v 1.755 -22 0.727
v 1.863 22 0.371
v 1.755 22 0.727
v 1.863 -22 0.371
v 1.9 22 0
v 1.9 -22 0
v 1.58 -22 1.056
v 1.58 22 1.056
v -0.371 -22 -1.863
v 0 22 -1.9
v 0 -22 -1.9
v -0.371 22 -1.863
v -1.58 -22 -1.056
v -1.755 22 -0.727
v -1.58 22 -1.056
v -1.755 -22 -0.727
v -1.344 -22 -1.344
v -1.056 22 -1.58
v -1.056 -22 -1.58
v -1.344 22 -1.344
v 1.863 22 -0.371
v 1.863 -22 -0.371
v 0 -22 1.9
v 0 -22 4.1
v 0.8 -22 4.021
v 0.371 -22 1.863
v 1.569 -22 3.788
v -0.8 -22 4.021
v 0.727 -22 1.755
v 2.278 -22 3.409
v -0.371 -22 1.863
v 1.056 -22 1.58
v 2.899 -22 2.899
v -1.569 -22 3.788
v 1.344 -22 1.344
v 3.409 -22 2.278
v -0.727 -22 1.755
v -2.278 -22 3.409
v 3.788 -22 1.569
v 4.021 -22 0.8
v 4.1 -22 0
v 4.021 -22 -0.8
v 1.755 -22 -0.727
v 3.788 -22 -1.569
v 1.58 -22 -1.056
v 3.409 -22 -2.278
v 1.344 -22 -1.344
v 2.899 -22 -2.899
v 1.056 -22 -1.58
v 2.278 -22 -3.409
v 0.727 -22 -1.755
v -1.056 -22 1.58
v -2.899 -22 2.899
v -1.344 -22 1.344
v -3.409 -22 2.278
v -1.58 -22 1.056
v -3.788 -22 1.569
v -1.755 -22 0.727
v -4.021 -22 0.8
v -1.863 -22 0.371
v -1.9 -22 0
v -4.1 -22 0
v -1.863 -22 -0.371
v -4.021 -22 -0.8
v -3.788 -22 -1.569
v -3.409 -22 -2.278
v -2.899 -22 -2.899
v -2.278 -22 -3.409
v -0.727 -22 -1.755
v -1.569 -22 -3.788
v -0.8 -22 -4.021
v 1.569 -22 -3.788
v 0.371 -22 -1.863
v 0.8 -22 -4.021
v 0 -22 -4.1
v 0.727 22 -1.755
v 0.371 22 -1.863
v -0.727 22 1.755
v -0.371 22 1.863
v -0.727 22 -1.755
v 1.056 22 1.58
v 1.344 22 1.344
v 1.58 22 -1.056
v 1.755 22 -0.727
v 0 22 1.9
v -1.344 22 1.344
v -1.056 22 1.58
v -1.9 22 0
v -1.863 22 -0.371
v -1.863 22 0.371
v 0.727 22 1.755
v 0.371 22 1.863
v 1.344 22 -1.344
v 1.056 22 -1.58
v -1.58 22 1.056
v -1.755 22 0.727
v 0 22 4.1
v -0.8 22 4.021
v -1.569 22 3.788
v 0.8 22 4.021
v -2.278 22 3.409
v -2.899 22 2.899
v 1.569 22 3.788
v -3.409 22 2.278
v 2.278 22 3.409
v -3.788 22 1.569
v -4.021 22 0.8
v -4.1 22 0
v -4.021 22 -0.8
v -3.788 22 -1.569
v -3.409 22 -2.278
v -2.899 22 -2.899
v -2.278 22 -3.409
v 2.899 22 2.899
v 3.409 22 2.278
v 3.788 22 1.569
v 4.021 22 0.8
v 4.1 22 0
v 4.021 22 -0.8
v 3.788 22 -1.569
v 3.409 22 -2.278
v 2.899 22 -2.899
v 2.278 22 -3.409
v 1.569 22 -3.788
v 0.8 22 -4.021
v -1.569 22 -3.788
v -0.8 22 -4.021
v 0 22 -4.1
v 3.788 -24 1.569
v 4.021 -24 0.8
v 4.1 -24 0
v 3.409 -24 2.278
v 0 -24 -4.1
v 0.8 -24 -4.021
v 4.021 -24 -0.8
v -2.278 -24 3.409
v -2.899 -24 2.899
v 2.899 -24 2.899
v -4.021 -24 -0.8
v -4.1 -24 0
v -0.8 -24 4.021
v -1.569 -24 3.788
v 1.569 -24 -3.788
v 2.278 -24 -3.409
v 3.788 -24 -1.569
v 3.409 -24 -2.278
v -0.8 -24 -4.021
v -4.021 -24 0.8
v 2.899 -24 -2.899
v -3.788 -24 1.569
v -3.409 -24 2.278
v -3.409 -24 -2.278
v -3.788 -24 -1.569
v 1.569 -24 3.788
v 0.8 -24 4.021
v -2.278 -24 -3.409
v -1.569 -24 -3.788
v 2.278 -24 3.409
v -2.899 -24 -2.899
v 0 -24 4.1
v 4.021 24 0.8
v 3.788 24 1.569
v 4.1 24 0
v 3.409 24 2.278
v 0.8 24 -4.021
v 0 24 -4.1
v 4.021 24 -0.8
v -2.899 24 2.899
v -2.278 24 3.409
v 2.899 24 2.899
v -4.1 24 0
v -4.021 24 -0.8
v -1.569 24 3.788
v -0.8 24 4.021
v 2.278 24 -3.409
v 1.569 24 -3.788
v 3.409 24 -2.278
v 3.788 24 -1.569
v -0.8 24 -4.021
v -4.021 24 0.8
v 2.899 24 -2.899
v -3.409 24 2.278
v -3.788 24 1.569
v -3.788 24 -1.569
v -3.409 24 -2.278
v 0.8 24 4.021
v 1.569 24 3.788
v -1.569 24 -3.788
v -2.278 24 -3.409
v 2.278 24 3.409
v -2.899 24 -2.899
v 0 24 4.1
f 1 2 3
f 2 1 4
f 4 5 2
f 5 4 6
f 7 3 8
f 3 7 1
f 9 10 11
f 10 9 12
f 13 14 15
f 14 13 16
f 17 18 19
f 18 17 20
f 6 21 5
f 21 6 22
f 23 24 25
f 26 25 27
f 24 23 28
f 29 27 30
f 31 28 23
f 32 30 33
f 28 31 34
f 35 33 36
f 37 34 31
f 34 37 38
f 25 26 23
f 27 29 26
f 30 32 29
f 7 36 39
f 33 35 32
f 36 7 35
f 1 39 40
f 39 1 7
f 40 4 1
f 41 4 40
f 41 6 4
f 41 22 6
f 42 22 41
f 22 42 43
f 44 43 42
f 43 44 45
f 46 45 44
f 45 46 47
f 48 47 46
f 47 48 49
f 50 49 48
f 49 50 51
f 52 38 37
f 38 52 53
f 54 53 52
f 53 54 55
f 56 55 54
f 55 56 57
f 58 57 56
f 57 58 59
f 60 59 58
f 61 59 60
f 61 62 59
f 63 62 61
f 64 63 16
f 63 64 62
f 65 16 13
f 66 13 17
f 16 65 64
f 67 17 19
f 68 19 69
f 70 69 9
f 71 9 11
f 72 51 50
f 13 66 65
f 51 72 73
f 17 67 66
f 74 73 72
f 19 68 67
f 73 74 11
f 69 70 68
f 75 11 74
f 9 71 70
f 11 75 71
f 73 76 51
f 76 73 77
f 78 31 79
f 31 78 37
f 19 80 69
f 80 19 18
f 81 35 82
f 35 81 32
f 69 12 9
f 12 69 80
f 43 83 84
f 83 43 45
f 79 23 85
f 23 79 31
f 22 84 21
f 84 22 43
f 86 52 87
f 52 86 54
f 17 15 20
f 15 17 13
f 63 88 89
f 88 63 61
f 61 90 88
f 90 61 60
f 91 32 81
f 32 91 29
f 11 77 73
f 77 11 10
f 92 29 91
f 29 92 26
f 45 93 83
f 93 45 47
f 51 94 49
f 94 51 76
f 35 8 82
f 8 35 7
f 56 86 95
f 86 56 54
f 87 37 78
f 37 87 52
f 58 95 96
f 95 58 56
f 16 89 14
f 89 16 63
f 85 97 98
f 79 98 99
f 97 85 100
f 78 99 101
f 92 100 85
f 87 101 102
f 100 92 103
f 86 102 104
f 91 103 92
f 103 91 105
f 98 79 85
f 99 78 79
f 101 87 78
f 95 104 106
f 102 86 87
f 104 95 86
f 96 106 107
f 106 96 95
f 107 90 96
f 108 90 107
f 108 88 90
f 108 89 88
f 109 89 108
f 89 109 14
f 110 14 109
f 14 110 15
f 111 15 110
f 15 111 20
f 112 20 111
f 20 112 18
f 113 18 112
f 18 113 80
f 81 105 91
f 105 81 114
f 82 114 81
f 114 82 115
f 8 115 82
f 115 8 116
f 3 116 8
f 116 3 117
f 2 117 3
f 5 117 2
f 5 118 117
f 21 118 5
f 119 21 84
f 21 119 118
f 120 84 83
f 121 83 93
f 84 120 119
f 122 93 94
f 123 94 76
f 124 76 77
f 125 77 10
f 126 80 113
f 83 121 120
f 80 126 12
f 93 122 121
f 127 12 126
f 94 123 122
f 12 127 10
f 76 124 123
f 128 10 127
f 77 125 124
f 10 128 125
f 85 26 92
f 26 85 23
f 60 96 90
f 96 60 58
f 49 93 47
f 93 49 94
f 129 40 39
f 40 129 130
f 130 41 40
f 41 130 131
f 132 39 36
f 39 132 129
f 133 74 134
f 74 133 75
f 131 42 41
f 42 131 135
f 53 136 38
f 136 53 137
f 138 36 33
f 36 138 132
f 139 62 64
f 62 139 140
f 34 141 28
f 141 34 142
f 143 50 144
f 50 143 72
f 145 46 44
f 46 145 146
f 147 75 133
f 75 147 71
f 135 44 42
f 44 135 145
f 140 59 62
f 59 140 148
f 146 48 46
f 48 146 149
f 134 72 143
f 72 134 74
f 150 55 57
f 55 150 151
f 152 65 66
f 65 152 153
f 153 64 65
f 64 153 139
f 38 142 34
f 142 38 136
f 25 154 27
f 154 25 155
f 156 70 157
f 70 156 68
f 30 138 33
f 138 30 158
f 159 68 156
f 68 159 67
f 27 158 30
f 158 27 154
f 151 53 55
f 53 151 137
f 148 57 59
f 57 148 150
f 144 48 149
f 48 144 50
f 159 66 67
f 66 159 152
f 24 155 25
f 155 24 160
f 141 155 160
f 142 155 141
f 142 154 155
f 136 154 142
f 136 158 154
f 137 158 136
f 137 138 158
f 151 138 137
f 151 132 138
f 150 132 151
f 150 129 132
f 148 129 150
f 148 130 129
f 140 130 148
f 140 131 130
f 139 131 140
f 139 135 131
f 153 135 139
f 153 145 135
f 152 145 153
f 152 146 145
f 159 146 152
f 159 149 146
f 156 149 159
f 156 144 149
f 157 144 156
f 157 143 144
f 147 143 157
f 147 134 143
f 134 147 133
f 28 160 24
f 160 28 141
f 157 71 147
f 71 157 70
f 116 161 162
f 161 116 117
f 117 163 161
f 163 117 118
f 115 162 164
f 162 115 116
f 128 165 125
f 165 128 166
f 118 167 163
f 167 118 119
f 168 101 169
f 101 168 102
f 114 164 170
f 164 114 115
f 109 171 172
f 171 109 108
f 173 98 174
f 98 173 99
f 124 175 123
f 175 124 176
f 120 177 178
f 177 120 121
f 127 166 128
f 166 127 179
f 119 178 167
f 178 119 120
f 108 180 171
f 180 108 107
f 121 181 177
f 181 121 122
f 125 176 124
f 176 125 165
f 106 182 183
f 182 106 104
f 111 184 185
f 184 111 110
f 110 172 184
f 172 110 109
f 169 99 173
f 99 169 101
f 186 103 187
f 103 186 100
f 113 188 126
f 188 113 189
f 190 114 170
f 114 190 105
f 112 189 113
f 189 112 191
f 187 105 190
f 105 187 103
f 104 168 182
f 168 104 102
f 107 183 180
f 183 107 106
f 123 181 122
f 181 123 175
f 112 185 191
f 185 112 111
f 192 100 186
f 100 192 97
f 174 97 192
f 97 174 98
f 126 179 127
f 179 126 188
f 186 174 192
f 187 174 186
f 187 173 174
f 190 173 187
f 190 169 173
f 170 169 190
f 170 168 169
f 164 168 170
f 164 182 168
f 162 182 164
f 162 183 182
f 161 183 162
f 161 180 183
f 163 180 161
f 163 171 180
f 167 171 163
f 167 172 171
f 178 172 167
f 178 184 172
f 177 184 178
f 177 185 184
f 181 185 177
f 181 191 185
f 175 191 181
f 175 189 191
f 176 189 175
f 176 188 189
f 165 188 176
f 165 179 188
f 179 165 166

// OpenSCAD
// file: params.scad
// ============================================================
//  PARAMÈTRES GLOBAUX - Johnny-Mow
//  Modifier ici pour adapter à votre robot
// ============================================================

// --- Châssis ---
chassis_L   = 350;   // longueur totale mm
chassis_W   = 300;   // largeur totale mm
chassis_H   = 8;     // épaisseur plaque de base mm
rail_W      = 52;    // largeur de chaque rail de chenille mm
rail_H      = 35;    // hauteur du rail latéral mm
rail_wall   = 4;     // épaisseur paroi rail mm
center_H    = 22;    // hauteur plancher central (dessus lame) mm

// --- Lame ---
blade_D     = 220;   // diamètre du disque lame mm
blade_clearance = 8; // jeu autour de la lame mm
blade_guard_H   = 25; // hauteur de la jupe de protection mm
blade_guard_t   = 3;  // épaisseur jupe mm

// --- Moteurs de roue ---
motor_D     = 37;    // diamètre corps moteur mm (DC gearmotor standard)
motor_shaft = 6;     // diamètre axe moteur mm
motor_L     = 68;    // longueur corps moteur mm

// --- Chenilles ---
link_L      = 32;    // longueur d'un maillon mm
link_W      = 42;    // largeur d'un maillon mm (= largeur piste)
link_H      = 9;     // hauteur d'un maillon mm
link_pin_D  = 4.2;   // diamètre des goupilles d'articulation mm
link_gap    = 0.4;   // jeu d'impression entre maillons mm

// --- Roues ---
wheel_D     = 64;    // diamètre roue / pignon mm
wheel_W     = 38;    // largeur roue mm
wheel_bore  = 6.2;   // alésage axe mm
teeth       = 14;    // nombre de dents du pignon
tooth_H     = 5;     // hauteur des dents mm
tooth_W     = 5;     // largeur de base des dents mm

// --- Roue folle ---
idler_D     = 54;    // diamètre roue folle mm
idler_W     = 38;    // largeur roue folle mm
idler_bore  = 8.2;   // alésage roulement mm (608 = 8mm)

// --- Impression ---
nozzle      = 0.4;   // diamètre buse mm
layer       = 0.2;   // hauteur de couche mm
tol         = 0.2;   // tolérance d'assemblage mm
// main file
// ============================================================
//  GOUPILLE DE CHENILLE - Johnny-Mow
//  Imprimer : 150 exemplaires (2 par maillon) - PETG
//  Imprimée couchée pour une résistance maximale au cisaillement
//  Alternative plus durable : tige acier ø4mm coupée à 44mm
// ============================================================
include <params.scad>

$fn = 32;

pin_R = link_pin_D / 2;

// Couchée sur le plateau (axe horizontal)
rotate([90, 0, 0]) {
    cylinder(r=pin_R - tol, h=link_W + 2, center=true);
    // Têtes de retenue aux deux extrémités
    translate([0, 0,  link_W/2 + 1]) cylinder(r=pin_R + 2, h=2);
    translate([0, 0, -link_W/2 - 3]) cylinder(r=pin_R + 2, h=2);
}
